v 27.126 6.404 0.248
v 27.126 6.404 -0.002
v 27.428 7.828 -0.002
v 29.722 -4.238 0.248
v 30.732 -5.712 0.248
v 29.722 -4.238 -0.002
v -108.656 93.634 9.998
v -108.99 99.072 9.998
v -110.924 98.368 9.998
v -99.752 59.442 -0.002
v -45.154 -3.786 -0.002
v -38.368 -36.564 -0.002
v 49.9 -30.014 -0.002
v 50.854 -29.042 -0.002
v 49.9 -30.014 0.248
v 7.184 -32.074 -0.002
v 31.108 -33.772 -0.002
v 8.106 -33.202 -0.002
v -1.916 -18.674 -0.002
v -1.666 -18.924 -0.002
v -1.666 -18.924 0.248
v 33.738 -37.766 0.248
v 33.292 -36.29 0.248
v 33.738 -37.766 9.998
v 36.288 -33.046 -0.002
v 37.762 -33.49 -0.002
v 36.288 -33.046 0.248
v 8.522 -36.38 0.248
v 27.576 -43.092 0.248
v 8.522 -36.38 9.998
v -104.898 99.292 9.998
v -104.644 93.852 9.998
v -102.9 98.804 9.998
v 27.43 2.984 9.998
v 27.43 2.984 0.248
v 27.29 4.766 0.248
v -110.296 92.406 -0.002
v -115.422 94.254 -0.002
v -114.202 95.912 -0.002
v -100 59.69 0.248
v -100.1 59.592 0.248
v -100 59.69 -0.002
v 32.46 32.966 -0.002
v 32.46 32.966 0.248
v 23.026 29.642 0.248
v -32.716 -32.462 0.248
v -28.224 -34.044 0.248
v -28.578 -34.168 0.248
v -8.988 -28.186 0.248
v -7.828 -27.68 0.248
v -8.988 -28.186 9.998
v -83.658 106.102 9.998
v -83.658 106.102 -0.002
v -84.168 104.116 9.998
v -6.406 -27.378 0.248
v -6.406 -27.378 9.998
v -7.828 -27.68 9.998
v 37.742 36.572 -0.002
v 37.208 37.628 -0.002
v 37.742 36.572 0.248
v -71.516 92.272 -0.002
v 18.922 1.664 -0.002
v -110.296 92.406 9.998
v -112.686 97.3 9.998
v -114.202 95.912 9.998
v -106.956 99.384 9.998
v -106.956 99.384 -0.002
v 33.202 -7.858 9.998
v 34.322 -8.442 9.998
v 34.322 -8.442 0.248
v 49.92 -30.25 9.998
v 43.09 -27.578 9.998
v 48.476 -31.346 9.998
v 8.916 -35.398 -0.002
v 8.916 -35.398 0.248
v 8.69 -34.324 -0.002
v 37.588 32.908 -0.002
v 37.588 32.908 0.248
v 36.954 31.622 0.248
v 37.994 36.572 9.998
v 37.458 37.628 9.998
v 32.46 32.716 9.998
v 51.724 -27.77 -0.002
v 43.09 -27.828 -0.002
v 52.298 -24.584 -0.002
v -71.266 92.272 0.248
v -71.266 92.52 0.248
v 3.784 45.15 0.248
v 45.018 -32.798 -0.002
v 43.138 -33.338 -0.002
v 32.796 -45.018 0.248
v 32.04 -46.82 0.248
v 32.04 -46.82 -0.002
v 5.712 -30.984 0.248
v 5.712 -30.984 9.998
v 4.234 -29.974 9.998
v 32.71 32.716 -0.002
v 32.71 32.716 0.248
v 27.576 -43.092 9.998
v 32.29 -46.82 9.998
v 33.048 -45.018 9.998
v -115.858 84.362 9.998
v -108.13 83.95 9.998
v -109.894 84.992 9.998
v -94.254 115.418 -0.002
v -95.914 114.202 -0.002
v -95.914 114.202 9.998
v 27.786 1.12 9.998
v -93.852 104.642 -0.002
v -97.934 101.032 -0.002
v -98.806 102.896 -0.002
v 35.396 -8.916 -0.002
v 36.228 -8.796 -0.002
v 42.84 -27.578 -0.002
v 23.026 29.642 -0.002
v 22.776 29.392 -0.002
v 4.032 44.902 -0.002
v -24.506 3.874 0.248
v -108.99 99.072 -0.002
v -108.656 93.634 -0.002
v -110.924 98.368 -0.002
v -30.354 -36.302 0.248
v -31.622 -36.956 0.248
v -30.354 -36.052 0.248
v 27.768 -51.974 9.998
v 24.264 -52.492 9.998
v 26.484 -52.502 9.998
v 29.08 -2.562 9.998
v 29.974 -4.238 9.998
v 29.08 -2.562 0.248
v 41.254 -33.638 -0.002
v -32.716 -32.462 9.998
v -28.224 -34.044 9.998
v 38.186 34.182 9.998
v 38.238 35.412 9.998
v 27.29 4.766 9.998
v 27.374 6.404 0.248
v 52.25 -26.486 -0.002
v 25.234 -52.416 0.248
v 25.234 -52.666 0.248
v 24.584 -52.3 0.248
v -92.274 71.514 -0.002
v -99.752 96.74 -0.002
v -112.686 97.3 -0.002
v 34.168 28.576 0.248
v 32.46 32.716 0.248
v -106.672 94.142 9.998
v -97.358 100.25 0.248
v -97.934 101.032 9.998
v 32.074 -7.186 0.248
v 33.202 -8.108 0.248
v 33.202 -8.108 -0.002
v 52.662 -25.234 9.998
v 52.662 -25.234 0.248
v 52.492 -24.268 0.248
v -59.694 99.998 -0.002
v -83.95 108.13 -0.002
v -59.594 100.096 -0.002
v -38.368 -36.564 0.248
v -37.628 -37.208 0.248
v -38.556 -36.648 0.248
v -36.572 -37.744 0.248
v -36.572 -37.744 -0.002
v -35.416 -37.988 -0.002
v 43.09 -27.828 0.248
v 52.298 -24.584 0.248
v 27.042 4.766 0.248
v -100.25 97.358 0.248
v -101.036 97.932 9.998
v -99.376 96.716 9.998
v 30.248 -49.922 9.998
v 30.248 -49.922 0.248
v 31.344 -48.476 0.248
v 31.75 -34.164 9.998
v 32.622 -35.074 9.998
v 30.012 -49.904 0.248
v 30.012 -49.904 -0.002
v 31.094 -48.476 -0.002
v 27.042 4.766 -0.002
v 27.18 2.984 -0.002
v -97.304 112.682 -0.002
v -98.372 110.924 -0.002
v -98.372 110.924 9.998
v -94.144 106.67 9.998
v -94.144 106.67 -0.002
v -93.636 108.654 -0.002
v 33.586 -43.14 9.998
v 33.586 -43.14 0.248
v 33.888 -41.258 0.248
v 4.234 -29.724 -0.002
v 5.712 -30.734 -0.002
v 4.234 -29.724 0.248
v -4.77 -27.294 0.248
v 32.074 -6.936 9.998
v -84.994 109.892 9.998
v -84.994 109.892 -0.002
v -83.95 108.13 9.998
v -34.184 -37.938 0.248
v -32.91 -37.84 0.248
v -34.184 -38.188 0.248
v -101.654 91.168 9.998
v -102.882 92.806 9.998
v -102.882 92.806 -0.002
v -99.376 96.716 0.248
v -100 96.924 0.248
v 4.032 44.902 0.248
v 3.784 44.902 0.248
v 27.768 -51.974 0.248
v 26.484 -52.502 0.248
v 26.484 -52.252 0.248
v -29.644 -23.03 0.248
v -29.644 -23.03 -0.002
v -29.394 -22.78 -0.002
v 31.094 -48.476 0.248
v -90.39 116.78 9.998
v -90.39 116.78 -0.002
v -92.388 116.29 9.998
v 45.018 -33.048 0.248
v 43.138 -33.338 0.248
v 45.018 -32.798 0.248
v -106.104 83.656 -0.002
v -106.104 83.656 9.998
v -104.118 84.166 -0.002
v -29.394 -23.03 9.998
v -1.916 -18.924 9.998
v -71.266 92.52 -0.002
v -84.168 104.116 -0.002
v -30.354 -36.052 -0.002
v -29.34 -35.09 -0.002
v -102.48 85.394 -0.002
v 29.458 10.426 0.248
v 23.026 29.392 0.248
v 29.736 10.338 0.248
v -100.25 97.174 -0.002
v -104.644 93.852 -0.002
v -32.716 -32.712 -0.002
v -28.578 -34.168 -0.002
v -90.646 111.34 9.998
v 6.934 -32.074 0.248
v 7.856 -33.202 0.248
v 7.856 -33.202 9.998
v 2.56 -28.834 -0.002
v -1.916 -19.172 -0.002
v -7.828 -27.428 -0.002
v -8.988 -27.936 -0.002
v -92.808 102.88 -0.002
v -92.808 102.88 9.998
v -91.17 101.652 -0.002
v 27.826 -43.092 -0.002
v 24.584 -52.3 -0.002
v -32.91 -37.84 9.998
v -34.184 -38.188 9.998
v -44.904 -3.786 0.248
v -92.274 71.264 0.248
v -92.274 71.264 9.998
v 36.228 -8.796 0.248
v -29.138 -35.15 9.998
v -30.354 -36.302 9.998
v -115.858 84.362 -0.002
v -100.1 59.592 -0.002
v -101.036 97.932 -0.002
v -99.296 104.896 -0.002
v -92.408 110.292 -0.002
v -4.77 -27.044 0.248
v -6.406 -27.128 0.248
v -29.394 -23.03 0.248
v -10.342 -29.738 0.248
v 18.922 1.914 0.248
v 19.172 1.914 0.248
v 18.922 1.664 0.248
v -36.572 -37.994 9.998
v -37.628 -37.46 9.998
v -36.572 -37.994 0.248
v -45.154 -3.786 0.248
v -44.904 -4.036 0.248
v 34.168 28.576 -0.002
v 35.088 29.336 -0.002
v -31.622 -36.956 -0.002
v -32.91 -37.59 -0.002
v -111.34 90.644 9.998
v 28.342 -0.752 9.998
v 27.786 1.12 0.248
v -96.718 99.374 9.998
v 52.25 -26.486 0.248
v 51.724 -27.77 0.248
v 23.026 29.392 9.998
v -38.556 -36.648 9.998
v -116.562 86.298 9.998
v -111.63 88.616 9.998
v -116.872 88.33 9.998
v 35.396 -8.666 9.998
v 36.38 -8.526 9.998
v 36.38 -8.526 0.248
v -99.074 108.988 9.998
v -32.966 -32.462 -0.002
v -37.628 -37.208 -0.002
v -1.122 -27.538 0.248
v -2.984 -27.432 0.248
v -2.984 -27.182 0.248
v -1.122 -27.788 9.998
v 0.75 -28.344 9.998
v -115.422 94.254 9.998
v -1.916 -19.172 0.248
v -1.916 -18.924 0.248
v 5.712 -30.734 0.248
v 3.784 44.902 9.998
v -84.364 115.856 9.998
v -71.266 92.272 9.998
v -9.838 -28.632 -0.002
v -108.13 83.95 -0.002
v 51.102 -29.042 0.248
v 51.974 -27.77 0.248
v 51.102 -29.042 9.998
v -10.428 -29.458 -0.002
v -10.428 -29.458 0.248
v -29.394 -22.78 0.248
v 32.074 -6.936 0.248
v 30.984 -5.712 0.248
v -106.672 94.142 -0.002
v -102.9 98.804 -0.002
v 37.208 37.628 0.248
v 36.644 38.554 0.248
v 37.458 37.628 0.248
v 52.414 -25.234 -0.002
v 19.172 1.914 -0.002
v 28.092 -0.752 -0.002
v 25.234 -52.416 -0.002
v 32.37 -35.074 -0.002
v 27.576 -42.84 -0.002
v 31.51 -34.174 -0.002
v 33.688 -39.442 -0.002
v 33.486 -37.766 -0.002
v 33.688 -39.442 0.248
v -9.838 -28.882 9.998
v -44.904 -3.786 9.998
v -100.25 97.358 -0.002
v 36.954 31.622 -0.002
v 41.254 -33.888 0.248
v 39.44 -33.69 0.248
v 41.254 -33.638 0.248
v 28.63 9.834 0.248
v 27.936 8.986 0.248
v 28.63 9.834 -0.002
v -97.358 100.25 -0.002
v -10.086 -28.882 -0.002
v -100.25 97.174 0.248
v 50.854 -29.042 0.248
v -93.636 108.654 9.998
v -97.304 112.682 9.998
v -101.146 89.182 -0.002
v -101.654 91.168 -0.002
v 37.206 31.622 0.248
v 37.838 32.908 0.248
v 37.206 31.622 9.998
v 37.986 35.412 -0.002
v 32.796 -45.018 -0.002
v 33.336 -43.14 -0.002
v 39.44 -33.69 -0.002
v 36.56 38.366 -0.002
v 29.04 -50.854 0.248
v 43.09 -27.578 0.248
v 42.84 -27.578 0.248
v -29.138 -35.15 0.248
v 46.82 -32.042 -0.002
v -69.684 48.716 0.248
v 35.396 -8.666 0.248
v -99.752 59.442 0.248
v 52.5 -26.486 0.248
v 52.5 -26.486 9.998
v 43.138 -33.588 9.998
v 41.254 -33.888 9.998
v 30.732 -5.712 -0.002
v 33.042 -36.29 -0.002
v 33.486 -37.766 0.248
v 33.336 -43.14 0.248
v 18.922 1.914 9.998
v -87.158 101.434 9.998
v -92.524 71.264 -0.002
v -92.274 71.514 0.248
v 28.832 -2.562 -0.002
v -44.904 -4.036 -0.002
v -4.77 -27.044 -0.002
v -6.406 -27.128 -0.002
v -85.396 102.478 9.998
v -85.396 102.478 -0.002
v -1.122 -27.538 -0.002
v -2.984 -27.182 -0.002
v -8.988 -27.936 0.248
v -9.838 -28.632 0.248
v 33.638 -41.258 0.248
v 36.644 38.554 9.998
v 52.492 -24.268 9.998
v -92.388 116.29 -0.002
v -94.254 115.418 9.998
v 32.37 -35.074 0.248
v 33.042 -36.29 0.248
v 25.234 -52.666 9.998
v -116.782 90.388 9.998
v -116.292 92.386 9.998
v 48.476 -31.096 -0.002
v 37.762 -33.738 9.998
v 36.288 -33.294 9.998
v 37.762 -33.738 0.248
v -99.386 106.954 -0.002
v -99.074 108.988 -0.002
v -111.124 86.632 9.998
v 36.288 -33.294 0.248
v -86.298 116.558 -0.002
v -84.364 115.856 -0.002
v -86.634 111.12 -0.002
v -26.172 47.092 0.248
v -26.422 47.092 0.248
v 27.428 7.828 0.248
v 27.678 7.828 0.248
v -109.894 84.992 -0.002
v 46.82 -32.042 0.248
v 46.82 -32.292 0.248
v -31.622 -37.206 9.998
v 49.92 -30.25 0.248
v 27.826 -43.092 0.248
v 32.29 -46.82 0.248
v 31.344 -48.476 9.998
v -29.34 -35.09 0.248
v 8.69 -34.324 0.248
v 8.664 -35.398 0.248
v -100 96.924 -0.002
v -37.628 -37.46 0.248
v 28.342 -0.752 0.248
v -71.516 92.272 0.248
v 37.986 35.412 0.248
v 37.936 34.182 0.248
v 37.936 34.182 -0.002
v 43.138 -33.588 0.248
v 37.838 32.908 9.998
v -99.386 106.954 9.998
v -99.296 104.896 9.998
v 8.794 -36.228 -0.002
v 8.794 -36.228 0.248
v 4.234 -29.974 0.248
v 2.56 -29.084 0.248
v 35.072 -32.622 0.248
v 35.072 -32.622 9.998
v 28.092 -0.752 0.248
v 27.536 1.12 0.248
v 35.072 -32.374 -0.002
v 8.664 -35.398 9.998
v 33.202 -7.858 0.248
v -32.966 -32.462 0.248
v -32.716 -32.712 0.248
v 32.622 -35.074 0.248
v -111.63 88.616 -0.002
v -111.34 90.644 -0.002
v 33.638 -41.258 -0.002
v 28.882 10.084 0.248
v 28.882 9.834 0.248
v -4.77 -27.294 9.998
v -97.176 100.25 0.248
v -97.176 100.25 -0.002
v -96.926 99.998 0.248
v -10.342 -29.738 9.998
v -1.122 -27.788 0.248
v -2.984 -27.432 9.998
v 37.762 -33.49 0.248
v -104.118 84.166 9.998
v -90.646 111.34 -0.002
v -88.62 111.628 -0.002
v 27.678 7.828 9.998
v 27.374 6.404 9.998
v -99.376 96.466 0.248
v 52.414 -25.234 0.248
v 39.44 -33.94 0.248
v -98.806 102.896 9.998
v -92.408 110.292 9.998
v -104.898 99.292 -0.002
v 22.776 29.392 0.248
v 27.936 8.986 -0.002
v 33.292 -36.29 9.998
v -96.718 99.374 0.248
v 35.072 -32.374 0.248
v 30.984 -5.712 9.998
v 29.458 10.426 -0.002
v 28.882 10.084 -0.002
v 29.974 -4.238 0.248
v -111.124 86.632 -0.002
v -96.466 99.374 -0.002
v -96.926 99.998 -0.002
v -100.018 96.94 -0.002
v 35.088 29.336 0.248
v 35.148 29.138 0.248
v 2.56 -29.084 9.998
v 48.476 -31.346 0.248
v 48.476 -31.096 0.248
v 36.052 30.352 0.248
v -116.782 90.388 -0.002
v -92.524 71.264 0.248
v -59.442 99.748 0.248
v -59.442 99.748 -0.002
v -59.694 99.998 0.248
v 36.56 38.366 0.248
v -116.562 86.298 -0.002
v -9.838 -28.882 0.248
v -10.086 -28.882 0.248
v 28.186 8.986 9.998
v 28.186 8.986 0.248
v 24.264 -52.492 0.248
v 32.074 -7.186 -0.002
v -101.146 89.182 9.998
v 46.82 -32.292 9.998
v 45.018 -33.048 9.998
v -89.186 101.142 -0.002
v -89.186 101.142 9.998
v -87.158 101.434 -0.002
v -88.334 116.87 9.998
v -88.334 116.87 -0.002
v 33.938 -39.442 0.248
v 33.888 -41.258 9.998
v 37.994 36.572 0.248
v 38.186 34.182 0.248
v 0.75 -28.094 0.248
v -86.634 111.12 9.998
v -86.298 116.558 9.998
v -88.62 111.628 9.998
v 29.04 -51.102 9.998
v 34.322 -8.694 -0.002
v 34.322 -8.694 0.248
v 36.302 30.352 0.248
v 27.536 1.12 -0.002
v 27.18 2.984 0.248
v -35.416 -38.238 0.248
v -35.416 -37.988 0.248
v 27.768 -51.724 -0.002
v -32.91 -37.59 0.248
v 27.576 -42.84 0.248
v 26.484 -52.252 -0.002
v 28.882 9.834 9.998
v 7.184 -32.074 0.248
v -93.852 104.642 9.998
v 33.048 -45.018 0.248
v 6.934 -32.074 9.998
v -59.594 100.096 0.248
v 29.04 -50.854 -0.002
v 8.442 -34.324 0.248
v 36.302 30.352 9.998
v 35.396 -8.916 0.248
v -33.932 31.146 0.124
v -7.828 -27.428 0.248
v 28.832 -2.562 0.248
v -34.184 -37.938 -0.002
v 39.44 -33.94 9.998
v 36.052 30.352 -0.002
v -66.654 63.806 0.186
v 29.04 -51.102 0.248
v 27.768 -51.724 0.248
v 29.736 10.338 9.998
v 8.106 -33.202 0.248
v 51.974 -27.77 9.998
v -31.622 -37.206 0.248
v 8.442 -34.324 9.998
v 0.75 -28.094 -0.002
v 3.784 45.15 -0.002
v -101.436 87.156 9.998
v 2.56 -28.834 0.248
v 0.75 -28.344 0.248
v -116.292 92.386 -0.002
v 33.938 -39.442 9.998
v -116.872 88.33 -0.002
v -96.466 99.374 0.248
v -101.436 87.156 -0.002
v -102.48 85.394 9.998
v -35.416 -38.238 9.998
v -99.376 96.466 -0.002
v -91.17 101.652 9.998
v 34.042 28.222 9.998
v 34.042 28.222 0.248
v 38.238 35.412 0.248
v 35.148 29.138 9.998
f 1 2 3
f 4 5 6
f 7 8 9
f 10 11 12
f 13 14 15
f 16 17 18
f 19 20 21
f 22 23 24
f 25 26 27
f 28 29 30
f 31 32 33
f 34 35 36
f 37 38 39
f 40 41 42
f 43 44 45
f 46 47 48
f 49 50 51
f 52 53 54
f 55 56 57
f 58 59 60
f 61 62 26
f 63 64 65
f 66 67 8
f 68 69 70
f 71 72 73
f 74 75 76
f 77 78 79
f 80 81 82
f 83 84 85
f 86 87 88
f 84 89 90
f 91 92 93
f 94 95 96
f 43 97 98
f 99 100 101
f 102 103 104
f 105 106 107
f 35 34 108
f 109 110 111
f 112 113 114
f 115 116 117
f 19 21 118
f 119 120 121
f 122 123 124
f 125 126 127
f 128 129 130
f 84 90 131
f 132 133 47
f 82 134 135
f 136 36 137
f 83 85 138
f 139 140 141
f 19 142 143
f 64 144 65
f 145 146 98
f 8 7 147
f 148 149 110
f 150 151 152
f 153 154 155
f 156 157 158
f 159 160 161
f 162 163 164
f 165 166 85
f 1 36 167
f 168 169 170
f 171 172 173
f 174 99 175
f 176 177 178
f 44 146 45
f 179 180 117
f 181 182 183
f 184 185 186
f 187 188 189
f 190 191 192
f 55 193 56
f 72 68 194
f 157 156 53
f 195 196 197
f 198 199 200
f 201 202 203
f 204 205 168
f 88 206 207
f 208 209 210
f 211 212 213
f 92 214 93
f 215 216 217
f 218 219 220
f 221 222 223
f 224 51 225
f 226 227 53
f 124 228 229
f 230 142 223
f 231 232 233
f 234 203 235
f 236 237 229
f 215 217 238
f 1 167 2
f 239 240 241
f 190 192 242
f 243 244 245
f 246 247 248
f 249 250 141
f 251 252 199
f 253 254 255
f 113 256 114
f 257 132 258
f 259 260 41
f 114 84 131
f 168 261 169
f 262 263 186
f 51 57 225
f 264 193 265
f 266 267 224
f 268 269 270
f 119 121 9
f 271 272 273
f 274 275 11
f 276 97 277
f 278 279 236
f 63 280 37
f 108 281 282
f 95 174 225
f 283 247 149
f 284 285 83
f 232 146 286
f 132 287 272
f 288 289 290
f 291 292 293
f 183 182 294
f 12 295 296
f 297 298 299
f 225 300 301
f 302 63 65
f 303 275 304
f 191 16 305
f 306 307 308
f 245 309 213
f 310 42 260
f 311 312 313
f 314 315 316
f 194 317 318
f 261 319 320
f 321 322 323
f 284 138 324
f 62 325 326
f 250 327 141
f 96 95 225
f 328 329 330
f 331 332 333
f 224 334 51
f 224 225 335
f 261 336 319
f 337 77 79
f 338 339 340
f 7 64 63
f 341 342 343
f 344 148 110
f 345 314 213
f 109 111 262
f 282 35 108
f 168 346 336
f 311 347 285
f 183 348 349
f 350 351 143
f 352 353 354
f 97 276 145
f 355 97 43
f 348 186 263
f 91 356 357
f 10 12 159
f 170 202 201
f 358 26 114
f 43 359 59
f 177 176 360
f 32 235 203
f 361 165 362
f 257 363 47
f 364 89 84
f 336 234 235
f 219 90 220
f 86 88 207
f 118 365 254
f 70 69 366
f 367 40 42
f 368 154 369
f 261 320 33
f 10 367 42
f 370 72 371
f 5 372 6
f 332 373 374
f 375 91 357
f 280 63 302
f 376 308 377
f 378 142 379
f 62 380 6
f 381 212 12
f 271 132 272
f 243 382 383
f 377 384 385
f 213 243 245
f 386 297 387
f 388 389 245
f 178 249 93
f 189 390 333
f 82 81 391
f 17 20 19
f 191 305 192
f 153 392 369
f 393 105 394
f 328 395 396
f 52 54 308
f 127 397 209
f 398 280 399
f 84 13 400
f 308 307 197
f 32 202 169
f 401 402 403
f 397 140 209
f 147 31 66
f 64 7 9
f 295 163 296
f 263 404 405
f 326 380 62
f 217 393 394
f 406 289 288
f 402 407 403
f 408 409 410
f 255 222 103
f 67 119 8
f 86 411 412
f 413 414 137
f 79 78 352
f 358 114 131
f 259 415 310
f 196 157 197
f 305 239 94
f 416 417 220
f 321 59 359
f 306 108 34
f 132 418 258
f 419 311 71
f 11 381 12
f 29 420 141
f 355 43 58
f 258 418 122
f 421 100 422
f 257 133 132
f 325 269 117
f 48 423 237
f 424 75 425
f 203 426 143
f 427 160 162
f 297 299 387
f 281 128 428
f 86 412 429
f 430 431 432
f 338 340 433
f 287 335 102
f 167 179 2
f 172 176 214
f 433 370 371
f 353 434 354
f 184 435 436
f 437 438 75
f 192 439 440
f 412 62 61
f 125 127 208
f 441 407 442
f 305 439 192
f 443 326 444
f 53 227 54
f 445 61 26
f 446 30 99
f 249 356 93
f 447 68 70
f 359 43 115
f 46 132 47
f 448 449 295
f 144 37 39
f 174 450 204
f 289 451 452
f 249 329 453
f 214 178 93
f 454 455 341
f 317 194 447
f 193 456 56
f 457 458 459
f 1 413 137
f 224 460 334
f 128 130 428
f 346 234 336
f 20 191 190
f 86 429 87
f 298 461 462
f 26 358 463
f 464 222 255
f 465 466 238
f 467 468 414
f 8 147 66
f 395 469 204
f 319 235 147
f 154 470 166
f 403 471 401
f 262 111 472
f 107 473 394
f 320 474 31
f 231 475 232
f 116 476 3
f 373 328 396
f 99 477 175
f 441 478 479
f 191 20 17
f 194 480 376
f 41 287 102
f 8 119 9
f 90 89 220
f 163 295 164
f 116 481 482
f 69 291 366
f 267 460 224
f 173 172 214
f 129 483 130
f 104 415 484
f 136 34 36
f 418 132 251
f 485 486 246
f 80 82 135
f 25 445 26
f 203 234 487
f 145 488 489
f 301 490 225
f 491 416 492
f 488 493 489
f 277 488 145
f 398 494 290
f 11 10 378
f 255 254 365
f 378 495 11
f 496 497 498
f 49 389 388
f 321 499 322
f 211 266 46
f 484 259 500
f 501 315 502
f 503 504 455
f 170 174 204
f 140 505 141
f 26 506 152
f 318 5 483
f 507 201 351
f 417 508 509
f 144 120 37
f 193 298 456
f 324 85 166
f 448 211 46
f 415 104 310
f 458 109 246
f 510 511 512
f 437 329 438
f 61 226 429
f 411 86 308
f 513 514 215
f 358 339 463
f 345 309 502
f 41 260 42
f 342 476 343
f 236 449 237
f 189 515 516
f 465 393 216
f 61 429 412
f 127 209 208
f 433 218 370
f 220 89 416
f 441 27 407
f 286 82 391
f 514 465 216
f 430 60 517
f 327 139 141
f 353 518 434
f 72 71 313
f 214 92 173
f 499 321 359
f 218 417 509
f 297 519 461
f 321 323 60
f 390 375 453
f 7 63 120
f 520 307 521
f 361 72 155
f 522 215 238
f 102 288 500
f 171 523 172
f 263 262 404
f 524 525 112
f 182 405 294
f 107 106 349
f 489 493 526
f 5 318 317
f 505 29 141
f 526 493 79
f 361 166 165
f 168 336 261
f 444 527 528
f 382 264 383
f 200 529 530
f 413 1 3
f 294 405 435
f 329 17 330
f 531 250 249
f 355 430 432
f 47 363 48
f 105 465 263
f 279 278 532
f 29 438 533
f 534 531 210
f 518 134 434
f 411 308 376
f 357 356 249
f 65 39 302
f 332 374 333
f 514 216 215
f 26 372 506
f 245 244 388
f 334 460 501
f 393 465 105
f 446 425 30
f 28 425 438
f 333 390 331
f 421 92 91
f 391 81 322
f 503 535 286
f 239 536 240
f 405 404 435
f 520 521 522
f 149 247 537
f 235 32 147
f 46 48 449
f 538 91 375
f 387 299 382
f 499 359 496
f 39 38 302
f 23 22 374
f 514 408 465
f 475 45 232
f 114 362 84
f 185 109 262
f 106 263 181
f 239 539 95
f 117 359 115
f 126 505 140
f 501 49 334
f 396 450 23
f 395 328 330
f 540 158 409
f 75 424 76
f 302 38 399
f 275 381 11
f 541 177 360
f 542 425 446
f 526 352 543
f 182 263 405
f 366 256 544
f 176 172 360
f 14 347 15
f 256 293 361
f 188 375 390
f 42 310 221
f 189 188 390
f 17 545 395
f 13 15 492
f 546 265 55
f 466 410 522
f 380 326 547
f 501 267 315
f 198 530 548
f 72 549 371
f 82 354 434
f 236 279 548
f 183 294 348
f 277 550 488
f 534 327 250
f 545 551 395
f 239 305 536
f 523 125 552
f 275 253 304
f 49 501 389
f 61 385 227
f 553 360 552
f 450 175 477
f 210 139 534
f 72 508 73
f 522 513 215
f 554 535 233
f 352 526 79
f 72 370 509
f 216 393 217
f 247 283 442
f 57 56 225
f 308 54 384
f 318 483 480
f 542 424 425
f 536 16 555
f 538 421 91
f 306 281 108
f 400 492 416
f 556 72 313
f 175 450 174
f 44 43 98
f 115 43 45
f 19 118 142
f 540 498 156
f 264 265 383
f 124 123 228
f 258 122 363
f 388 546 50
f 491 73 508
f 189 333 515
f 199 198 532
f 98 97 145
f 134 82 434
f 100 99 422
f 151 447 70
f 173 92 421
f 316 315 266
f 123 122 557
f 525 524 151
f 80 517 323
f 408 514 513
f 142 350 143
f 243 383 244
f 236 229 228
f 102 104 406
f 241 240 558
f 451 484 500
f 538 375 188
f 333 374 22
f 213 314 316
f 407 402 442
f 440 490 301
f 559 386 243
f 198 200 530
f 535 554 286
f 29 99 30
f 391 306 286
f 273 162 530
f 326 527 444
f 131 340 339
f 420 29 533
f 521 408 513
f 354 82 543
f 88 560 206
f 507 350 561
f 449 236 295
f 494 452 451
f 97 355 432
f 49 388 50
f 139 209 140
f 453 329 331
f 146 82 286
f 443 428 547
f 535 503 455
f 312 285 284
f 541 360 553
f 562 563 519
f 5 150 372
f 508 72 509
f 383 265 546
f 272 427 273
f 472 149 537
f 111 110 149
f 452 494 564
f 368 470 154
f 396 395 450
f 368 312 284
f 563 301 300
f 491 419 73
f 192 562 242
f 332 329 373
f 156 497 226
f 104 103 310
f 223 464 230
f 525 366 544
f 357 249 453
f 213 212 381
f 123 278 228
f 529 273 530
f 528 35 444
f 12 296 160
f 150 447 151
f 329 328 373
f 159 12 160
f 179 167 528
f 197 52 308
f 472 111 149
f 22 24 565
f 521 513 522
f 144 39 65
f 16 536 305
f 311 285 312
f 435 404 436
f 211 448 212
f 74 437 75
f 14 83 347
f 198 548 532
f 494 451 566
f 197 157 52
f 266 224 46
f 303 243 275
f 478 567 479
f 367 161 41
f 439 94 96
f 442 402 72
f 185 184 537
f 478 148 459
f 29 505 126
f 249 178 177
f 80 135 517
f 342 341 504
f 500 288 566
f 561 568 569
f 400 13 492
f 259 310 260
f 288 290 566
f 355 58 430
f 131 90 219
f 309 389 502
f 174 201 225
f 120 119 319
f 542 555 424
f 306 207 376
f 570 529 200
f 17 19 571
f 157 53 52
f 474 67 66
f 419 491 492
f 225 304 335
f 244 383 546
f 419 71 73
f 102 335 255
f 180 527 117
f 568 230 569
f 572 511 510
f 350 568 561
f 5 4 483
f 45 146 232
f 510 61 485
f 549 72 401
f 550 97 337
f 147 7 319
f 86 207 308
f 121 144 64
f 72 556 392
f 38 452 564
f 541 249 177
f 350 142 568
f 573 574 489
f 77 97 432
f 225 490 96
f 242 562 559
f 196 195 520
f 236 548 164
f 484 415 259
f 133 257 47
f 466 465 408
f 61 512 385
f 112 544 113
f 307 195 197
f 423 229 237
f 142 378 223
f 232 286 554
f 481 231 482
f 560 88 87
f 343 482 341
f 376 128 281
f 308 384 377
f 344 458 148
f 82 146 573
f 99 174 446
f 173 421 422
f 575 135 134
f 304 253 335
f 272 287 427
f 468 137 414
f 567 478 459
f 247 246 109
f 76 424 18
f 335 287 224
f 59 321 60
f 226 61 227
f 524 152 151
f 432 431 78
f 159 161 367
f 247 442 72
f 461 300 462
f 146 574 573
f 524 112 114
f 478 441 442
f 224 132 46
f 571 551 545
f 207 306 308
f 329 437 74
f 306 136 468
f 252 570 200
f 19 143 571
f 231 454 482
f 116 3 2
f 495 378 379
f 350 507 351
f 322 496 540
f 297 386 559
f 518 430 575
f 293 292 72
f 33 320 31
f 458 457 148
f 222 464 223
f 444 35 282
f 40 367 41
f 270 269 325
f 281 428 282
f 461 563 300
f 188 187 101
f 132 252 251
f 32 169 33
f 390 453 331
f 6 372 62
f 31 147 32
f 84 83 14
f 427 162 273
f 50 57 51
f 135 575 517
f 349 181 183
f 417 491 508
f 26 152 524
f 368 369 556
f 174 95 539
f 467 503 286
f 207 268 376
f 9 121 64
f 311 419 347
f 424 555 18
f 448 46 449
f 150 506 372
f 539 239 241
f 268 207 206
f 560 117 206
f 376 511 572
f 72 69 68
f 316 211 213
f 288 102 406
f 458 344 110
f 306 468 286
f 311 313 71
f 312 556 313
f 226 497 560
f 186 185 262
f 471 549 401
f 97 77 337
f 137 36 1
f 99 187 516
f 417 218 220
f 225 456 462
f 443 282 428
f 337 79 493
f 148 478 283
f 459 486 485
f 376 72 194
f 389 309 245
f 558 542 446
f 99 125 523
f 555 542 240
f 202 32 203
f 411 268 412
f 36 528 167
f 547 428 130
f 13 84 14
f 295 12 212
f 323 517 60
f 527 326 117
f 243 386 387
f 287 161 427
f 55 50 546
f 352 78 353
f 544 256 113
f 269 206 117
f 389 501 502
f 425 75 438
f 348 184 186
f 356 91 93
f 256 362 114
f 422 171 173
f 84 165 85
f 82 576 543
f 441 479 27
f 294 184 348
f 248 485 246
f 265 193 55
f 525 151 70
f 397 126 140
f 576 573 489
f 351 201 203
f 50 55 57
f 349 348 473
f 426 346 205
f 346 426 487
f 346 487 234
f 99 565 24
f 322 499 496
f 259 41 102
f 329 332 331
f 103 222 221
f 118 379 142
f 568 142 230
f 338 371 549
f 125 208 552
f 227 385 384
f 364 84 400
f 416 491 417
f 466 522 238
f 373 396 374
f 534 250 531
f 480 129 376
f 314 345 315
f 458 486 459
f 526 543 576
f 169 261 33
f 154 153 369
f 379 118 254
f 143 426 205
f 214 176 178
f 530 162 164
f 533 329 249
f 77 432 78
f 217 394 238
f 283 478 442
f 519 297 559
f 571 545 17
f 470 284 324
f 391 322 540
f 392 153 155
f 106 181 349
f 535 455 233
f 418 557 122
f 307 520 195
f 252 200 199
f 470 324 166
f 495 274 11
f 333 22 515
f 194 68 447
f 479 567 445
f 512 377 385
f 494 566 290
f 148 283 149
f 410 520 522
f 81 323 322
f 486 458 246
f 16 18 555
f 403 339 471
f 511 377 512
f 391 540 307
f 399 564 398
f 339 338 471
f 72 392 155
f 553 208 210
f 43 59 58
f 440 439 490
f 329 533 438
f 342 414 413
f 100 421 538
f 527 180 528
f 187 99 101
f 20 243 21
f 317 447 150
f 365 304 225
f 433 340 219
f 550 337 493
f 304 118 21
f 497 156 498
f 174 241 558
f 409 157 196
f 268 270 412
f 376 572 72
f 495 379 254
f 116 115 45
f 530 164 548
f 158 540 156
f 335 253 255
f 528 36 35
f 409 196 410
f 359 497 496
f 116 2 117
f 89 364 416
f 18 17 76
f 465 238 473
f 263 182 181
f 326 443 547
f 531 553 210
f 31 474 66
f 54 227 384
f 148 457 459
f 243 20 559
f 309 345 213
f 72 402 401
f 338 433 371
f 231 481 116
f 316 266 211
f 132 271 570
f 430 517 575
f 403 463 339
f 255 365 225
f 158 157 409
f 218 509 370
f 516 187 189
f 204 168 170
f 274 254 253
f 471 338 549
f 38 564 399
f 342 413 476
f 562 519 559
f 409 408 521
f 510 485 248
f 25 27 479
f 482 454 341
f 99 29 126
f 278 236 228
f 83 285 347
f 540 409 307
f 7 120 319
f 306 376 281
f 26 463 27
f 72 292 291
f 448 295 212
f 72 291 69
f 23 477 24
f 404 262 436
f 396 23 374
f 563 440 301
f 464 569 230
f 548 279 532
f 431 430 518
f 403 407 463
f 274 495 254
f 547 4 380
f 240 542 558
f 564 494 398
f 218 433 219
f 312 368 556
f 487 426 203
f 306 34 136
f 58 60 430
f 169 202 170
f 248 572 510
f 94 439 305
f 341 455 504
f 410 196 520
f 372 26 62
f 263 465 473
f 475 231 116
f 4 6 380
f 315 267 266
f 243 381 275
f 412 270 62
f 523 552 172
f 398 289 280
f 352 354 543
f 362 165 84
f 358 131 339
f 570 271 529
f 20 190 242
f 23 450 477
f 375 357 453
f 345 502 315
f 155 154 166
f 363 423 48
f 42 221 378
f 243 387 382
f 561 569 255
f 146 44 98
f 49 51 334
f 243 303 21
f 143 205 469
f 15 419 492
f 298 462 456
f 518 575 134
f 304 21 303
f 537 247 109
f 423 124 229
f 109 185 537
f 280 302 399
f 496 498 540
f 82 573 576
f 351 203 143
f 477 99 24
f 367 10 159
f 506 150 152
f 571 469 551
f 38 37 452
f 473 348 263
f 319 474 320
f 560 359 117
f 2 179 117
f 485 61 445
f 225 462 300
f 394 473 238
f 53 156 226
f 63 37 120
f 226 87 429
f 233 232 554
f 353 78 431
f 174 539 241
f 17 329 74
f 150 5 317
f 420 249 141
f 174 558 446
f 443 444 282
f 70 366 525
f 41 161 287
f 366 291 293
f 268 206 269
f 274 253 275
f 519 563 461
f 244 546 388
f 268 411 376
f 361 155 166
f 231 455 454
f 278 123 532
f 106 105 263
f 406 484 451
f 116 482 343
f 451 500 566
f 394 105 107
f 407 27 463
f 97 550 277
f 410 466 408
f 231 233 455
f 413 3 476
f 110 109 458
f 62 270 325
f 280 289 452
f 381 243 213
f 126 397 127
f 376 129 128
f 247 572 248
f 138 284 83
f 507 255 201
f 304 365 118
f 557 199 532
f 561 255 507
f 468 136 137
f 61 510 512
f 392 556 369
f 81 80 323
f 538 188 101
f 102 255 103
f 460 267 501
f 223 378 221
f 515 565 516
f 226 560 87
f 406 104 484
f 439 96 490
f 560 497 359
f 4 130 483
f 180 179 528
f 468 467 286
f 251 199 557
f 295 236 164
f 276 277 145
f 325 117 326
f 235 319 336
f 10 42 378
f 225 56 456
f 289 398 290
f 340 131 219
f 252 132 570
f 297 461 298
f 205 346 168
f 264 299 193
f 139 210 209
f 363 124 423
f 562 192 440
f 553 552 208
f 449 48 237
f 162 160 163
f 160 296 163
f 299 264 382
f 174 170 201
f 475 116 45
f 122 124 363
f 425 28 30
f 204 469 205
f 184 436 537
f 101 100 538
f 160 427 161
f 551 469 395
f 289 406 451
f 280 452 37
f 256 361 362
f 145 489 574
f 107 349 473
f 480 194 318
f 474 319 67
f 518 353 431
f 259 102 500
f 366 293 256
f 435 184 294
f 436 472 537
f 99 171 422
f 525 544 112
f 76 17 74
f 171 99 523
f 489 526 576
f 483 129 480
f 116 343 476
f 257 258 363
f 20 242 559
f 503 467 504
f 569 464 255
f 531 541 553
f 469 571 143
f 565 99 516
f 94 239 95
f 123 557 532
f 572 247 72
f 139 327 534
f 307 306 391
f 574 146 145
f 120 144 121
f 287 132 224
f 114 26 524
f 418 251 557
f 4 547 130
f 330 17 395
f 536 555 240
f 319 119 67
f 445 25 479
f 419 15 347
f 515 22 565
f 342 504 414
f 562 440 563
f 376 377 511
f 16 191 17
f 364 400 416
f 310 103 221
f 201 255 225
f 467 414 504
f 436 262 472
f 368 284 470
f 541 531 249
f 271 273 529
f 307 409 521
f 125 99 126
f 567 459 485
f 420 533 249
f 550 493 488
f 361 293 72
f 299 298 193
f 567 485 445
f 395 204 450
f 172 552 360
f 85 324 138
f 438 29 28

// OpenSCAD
// file: compacto.scad
////////////////////////////////////////////////////////////////////////////////////////////////////////////////////////
//
// implementaciones del cubo y el cilindro para hacer más compacto el código
// (lo mantengo por no modificar fuentes viejos, pero no recomiendo su uso)
// It is licensed under the Creative Commons - GNU LGPL 2.1 license.
// © 2014-2017 by luis gutierrez (sacamantecas)
//
// cada función tiene su ejemplo simple correspondiente
// se recomienda ver qué parámetros tiene y experimentar con ellos
//



// un truco para interrogar desde fuera variables de configuración internas de este módulo
// ejemplo:
//		re = compacto($redondeo);
function compacto(valor) = valor; 

$redondeo = 1 ; // radio de redondeo por defecto (se puede indicar otro valor en la llamada)

use <basico.scad>

	
////////////////////////////////////////////////////////////////////////////////////////////////////////////////////////////////////////////////////////
// cilindro trasladado, rotado y escalado y quizá con las aristas verticales redondeadas
module cilindro(d, h, t=[0,0,0], r=[0,0,0], s=[1,1,1]) { translate(t) rotate(r) scale(s) cylinder(d=d, h=h, center=true, $fn=fn(d*max(s[0],s[1]))); }


////////////////////////////////////////////////////////////////////////////////////////////////////////////////////////////////////////////////////////
// cubo trasladado, rotado y escalado y quizá con las esquinas redondeadas
// esquinas se interpreta como un conjunto de 4 bits que representan los 4 cuadrantes
// ejemplo: 
//		cubo([20,30,40], esquinas=1+4, $redondeo=4);
module cubo(c, t=[0,0,0], r=[0,0,0], s=[1,1,1], esquinas=0) { // cubo, redondeado si procede

	module extremo(esquina, redondeado) {
		if (redondeado) {
			translate(esquina-[$redondeo,$redondeo,0]) cylinder(r=$redondeo, h=c[2], center=true, $fn=fn($redondeo*2));
		} else {
			translate(esquina-[.01,.01,0]) cube([.02,.02, c[2]], center=true);
		}
	}
	module cubor() {
		esquina = [c[0]/2, c[1]/2, 0] ;
		hull() {
			extremo(esquina, (esquinas%2 == 1));
			mirror([0,1,0]) extremo(esquina, (floor(esquinas/2)%2 == 1));
			mirror([1,0,0]) { 
				mirror([0,1,0]) extremo(esquina, (floor(esquinas/4)%2 == 1));
				extremo(esquina, (esquinas/8 >= 1));
			}
		}
	}
	
	rotate(r) translate(t) scale(s) // escala respecto al origen, luego traslada, y finalmente rota respecto al origen
		if (esquinas)
			if ($redondeo > min(c[0], c[1])/2)
				intersection() {
					cube(c, center=true);
					cubor();
				}
			else
				cubor();
		else 
			cube(c, center=true);
}
// file: basico.scad
////////////////////////////////////////////////////////////////////////////////////////////////////////////////////////
//
// utilidades y variables básicas que suelo usar
// It is licensed under the Creative Commons - GNU LGPL 2.1 license.
// © 2014-2017 by luiso gutierrez (sacamantecas)
//
// cada módulo tiene su ejemplo simple correspondiente
// se recomienda ver qué parámetros tiene y experimentar con ellos
//


// corte_a_capa(n, [por_exceso]) ajusta una altura a nº entero de capas (se espera que el llamador haya asignado valor a $alto_de_capa)
function corte_a_capa(cuanto, exceso=false) = floor((cuanto+(exceso?($alto_de_capa-.0001):0))/$alto_de_capa)*$alto_de_capa;
// correccion() sirve para remarcar el código donde se hace una corrección sobre un valor teórico para que la pieza salga perfecta en la práctica
function correccion( valor )=valor; 
// numero de facetas segun el diametro, ajustado a multiplo de 4 para casar figuras ortogonales
function fn(d) = floor(( d/$fs*3.1416+3)/4)*4 ; 



////////////////////////////////////////////////////////////////////////////////////////////////////////////////////////////////////////////////////////


mp = .1 ; // muy poco


// Para ayudar a la depuración dibujando un aspa (mejor resaltada con #) en el punto actual o con una traslación a partir del mismo
// ejemplo: marcar el punto y la orientación dentro de una transformación compleja:
//		translate([20, 0, 0]) rotate([0, 0, 60]) translate([0,30,0]) rotate([0,45,0]) translate([0,0,40]) aspa();
// es pueden dibujar planos en vez de ejes, por ejemplo el plano perpendicular a Y con el eje Y (los ejes X y Z no se pintan porque quedan incluidos en el plano): 
//		aspa([0,1,0]);
module aspa(normales=[0,0,0]) {
	mucho=200 ;
	if (normales[0]) cube([mp,mucho,mucho], center=true);
	if (normales[1]) cube([mucho,mp,mucho], center=true);
	if (normales[2]) cube([mucho,mucho,mp], center=true);
	if (!(normales[1]+normales[2])) cube([mucho,mp,mp], center=true);
	if (!(normales[0]+normales[2])) cube([mp,mucho,mp], center=true);
	if (!(normales[0]+normales[1])) cube([mp,mp,mucho], center=true);
}


////////////////////////////////////////////////////////////////////////////////////////////////////////////////////////////////////////////////////////
// afeitar una pieza: es un corte adelantado en la base, para ahorrarnos el afeitado posterior de la pieza
// dificilmente una transformación puede ser más lenta :(
// ejemplo:
//		afeita() cube([30, 20, 10]);
module afeita(cuanto=.25) {
	maximo=200 ;
	
	difference() {
		children();
		if (cuanto)
			minkowski() {
				difference() {
					translate([-maximo/2,-maximo/2,-mp])
						cube([maximo,maximo,$alto_de_capa+mp]);
					render()
						children();
				}
				translate([0,0,-mp])
					cylinder(r=cuanto, h=mp, $fn=4);
			}
	}
}

////////////////////////////////////////////////////////////////////////////////////////////////////////////////////////////////////////////////////////
// agujero para meter una rosca de embutir dándole un calentón con el soldador
// el soporte por defecto no se pone, y si se pone es para agujero horizontal por defecto
// ejemplo:	$fa=1;$fs=1;$alto_de_capa=.3; difference() { %cube([30, 20, 20]); translate([15, 0, 10]) rotate([-90,0,0]) rosca_embutir(soportada=1); translate([15, 10,20]) rotate([180,0,0]) rosca_embutir(8) ; translate([15, 0, 0]) rosca_embutir(soportada=1, soporte_axial=1); }
module rosca_embutir(profundidad=5, soportada=0, soporte_axial=0) {
	H = 4 ;	
	Dg = [5.6, 5.2];
	Dp = 3.4;
	ancho_churrito = .5;
	$fn=12;

	if ($alto_de_capa == undef) echo("$alto_de_capa SIN DEFINIR, ESTO NO PUEDE SALIR BIEN")	;
	
	difference() {
		union() {
			translate([0,0,(H-mp)/2]) cylinder(d1=Dg[0], d2=Dg[1], h=H+mp, center=true);
			translate([0,0,profundidad/2]) cylinder(d=Dp, h=profundidad, center=true);
		}
		if (soportada) {
			if (soporte_axial)
				translate([0, 0, -mp])				
					difference() {
						cylinder(d=Dp + 2 * ancho_churrito, h=H - $alto_de_capa + mp);
						translate([0, 0, -mp])
							cylinder(d = Dp, h=H - $alto_de_capa + 3*mp);
					}
			else {
				escala = (Dg[0] - 2 * $alto_de_capa) / Dg[0] ;
				angulo_voladizo = 50 ; // para estos tamaños se puede usar hasta 60º 
				translate([0,0,-1.5]) // un hueco horizontal de 1.5 está bien
					intersection() {
						scale([escala, escala, 1])
							rosca_embutir(profundidad=0, soportada=0);
						translate([0,0,profundidad/2])
							cube([Dg[0] * cos(angulo_voladizo), 6, profundidad], center=true);
					}
			}
		}
	}
}
// main file
////////////////////////////////////////////////////////////////////////////////////////////////////////////////////////
//
// portacarretes para servir filamento en el eje Y, para colocar sobre el marco de mAka
// It is licensed under the Creative Commons - GNU LGPL 2.1 license.
// © 2014-2017 by luis gutierrez (sacamantecas)
//
//

use <basico.scad>
use <compacto.scad>

$alto_de_capa=.25;

dx=10 ;
rulo_z = 110 ;
rulo_y = 90 ;

mp=.1;
rot=[0,90,0];





afeita()
	rotate([0,0,45])
	{
		translate([46,0,dx/2]) rotate([0,90,64.4]) uno();
		translate([-46,0,dx/2]) rotate([0,-90,-64.4]) uno();
	}

module uno() {		
	difference() {
		union() {
			hull() {
				cilindro(d=25,h=dx, s=[.6,1,1], r=rot, t=[0,6,2]);
				cilindro(d=21,h=dx,r=rot,t=[0,rulo_y,rulo_z]);
			}
			hull() {
				cilindro(d=20, h=dx, s=[.6,1,1], r=rot, t=[0,10,-60]);
				cilindro(d=21,h=dx,r=rot,t=[0,rulo_y,rulo_z]);
			}
			cubo([dx,15,60], t=[0,15/2+10,-6]);
		}
		cilindro(d=10.5, h=dx+mp, r=rot, t=[0,rulo_y,rulo_z]);
		cubo([dx+mp, 10, 60+.4], [0,5,-30]);
		cilindro(d=10, h=dx+mp, s=[2,1,1], r=rot, t=[0,10,-30]);

		dY=rulo_y+20;
		dZ=rulo_z+60+40;
		difference() {
			cubo([dx, dY, dZ], t=[0,dY/2, dZ/2-80]);
			minkowski() {
				difference() {
					cubo([dx+mp, dY, dZ], t=[0,dY/2, dZ/2-80]);
					difference(){
						hull() {
							cilindro(d=25,h=dx+mp*2, s=[.8,1,1], r=rot, t=[0,6,2]);
							cilindro(d=21,h=dx+mp*2,r=rot,t=[0,rulo_y,rulo_z]);
							cilindro(d=20, h=dx+mp*2, s=[.6,1,1], r=rot, t=[0,10,-60]);
						}
						cubo([dx+mp*3,100,100], [0,-40,-20]);
					}
				}
				cilindro(d=26, h=.1, r=rot);
			}
		}		
	}
}
